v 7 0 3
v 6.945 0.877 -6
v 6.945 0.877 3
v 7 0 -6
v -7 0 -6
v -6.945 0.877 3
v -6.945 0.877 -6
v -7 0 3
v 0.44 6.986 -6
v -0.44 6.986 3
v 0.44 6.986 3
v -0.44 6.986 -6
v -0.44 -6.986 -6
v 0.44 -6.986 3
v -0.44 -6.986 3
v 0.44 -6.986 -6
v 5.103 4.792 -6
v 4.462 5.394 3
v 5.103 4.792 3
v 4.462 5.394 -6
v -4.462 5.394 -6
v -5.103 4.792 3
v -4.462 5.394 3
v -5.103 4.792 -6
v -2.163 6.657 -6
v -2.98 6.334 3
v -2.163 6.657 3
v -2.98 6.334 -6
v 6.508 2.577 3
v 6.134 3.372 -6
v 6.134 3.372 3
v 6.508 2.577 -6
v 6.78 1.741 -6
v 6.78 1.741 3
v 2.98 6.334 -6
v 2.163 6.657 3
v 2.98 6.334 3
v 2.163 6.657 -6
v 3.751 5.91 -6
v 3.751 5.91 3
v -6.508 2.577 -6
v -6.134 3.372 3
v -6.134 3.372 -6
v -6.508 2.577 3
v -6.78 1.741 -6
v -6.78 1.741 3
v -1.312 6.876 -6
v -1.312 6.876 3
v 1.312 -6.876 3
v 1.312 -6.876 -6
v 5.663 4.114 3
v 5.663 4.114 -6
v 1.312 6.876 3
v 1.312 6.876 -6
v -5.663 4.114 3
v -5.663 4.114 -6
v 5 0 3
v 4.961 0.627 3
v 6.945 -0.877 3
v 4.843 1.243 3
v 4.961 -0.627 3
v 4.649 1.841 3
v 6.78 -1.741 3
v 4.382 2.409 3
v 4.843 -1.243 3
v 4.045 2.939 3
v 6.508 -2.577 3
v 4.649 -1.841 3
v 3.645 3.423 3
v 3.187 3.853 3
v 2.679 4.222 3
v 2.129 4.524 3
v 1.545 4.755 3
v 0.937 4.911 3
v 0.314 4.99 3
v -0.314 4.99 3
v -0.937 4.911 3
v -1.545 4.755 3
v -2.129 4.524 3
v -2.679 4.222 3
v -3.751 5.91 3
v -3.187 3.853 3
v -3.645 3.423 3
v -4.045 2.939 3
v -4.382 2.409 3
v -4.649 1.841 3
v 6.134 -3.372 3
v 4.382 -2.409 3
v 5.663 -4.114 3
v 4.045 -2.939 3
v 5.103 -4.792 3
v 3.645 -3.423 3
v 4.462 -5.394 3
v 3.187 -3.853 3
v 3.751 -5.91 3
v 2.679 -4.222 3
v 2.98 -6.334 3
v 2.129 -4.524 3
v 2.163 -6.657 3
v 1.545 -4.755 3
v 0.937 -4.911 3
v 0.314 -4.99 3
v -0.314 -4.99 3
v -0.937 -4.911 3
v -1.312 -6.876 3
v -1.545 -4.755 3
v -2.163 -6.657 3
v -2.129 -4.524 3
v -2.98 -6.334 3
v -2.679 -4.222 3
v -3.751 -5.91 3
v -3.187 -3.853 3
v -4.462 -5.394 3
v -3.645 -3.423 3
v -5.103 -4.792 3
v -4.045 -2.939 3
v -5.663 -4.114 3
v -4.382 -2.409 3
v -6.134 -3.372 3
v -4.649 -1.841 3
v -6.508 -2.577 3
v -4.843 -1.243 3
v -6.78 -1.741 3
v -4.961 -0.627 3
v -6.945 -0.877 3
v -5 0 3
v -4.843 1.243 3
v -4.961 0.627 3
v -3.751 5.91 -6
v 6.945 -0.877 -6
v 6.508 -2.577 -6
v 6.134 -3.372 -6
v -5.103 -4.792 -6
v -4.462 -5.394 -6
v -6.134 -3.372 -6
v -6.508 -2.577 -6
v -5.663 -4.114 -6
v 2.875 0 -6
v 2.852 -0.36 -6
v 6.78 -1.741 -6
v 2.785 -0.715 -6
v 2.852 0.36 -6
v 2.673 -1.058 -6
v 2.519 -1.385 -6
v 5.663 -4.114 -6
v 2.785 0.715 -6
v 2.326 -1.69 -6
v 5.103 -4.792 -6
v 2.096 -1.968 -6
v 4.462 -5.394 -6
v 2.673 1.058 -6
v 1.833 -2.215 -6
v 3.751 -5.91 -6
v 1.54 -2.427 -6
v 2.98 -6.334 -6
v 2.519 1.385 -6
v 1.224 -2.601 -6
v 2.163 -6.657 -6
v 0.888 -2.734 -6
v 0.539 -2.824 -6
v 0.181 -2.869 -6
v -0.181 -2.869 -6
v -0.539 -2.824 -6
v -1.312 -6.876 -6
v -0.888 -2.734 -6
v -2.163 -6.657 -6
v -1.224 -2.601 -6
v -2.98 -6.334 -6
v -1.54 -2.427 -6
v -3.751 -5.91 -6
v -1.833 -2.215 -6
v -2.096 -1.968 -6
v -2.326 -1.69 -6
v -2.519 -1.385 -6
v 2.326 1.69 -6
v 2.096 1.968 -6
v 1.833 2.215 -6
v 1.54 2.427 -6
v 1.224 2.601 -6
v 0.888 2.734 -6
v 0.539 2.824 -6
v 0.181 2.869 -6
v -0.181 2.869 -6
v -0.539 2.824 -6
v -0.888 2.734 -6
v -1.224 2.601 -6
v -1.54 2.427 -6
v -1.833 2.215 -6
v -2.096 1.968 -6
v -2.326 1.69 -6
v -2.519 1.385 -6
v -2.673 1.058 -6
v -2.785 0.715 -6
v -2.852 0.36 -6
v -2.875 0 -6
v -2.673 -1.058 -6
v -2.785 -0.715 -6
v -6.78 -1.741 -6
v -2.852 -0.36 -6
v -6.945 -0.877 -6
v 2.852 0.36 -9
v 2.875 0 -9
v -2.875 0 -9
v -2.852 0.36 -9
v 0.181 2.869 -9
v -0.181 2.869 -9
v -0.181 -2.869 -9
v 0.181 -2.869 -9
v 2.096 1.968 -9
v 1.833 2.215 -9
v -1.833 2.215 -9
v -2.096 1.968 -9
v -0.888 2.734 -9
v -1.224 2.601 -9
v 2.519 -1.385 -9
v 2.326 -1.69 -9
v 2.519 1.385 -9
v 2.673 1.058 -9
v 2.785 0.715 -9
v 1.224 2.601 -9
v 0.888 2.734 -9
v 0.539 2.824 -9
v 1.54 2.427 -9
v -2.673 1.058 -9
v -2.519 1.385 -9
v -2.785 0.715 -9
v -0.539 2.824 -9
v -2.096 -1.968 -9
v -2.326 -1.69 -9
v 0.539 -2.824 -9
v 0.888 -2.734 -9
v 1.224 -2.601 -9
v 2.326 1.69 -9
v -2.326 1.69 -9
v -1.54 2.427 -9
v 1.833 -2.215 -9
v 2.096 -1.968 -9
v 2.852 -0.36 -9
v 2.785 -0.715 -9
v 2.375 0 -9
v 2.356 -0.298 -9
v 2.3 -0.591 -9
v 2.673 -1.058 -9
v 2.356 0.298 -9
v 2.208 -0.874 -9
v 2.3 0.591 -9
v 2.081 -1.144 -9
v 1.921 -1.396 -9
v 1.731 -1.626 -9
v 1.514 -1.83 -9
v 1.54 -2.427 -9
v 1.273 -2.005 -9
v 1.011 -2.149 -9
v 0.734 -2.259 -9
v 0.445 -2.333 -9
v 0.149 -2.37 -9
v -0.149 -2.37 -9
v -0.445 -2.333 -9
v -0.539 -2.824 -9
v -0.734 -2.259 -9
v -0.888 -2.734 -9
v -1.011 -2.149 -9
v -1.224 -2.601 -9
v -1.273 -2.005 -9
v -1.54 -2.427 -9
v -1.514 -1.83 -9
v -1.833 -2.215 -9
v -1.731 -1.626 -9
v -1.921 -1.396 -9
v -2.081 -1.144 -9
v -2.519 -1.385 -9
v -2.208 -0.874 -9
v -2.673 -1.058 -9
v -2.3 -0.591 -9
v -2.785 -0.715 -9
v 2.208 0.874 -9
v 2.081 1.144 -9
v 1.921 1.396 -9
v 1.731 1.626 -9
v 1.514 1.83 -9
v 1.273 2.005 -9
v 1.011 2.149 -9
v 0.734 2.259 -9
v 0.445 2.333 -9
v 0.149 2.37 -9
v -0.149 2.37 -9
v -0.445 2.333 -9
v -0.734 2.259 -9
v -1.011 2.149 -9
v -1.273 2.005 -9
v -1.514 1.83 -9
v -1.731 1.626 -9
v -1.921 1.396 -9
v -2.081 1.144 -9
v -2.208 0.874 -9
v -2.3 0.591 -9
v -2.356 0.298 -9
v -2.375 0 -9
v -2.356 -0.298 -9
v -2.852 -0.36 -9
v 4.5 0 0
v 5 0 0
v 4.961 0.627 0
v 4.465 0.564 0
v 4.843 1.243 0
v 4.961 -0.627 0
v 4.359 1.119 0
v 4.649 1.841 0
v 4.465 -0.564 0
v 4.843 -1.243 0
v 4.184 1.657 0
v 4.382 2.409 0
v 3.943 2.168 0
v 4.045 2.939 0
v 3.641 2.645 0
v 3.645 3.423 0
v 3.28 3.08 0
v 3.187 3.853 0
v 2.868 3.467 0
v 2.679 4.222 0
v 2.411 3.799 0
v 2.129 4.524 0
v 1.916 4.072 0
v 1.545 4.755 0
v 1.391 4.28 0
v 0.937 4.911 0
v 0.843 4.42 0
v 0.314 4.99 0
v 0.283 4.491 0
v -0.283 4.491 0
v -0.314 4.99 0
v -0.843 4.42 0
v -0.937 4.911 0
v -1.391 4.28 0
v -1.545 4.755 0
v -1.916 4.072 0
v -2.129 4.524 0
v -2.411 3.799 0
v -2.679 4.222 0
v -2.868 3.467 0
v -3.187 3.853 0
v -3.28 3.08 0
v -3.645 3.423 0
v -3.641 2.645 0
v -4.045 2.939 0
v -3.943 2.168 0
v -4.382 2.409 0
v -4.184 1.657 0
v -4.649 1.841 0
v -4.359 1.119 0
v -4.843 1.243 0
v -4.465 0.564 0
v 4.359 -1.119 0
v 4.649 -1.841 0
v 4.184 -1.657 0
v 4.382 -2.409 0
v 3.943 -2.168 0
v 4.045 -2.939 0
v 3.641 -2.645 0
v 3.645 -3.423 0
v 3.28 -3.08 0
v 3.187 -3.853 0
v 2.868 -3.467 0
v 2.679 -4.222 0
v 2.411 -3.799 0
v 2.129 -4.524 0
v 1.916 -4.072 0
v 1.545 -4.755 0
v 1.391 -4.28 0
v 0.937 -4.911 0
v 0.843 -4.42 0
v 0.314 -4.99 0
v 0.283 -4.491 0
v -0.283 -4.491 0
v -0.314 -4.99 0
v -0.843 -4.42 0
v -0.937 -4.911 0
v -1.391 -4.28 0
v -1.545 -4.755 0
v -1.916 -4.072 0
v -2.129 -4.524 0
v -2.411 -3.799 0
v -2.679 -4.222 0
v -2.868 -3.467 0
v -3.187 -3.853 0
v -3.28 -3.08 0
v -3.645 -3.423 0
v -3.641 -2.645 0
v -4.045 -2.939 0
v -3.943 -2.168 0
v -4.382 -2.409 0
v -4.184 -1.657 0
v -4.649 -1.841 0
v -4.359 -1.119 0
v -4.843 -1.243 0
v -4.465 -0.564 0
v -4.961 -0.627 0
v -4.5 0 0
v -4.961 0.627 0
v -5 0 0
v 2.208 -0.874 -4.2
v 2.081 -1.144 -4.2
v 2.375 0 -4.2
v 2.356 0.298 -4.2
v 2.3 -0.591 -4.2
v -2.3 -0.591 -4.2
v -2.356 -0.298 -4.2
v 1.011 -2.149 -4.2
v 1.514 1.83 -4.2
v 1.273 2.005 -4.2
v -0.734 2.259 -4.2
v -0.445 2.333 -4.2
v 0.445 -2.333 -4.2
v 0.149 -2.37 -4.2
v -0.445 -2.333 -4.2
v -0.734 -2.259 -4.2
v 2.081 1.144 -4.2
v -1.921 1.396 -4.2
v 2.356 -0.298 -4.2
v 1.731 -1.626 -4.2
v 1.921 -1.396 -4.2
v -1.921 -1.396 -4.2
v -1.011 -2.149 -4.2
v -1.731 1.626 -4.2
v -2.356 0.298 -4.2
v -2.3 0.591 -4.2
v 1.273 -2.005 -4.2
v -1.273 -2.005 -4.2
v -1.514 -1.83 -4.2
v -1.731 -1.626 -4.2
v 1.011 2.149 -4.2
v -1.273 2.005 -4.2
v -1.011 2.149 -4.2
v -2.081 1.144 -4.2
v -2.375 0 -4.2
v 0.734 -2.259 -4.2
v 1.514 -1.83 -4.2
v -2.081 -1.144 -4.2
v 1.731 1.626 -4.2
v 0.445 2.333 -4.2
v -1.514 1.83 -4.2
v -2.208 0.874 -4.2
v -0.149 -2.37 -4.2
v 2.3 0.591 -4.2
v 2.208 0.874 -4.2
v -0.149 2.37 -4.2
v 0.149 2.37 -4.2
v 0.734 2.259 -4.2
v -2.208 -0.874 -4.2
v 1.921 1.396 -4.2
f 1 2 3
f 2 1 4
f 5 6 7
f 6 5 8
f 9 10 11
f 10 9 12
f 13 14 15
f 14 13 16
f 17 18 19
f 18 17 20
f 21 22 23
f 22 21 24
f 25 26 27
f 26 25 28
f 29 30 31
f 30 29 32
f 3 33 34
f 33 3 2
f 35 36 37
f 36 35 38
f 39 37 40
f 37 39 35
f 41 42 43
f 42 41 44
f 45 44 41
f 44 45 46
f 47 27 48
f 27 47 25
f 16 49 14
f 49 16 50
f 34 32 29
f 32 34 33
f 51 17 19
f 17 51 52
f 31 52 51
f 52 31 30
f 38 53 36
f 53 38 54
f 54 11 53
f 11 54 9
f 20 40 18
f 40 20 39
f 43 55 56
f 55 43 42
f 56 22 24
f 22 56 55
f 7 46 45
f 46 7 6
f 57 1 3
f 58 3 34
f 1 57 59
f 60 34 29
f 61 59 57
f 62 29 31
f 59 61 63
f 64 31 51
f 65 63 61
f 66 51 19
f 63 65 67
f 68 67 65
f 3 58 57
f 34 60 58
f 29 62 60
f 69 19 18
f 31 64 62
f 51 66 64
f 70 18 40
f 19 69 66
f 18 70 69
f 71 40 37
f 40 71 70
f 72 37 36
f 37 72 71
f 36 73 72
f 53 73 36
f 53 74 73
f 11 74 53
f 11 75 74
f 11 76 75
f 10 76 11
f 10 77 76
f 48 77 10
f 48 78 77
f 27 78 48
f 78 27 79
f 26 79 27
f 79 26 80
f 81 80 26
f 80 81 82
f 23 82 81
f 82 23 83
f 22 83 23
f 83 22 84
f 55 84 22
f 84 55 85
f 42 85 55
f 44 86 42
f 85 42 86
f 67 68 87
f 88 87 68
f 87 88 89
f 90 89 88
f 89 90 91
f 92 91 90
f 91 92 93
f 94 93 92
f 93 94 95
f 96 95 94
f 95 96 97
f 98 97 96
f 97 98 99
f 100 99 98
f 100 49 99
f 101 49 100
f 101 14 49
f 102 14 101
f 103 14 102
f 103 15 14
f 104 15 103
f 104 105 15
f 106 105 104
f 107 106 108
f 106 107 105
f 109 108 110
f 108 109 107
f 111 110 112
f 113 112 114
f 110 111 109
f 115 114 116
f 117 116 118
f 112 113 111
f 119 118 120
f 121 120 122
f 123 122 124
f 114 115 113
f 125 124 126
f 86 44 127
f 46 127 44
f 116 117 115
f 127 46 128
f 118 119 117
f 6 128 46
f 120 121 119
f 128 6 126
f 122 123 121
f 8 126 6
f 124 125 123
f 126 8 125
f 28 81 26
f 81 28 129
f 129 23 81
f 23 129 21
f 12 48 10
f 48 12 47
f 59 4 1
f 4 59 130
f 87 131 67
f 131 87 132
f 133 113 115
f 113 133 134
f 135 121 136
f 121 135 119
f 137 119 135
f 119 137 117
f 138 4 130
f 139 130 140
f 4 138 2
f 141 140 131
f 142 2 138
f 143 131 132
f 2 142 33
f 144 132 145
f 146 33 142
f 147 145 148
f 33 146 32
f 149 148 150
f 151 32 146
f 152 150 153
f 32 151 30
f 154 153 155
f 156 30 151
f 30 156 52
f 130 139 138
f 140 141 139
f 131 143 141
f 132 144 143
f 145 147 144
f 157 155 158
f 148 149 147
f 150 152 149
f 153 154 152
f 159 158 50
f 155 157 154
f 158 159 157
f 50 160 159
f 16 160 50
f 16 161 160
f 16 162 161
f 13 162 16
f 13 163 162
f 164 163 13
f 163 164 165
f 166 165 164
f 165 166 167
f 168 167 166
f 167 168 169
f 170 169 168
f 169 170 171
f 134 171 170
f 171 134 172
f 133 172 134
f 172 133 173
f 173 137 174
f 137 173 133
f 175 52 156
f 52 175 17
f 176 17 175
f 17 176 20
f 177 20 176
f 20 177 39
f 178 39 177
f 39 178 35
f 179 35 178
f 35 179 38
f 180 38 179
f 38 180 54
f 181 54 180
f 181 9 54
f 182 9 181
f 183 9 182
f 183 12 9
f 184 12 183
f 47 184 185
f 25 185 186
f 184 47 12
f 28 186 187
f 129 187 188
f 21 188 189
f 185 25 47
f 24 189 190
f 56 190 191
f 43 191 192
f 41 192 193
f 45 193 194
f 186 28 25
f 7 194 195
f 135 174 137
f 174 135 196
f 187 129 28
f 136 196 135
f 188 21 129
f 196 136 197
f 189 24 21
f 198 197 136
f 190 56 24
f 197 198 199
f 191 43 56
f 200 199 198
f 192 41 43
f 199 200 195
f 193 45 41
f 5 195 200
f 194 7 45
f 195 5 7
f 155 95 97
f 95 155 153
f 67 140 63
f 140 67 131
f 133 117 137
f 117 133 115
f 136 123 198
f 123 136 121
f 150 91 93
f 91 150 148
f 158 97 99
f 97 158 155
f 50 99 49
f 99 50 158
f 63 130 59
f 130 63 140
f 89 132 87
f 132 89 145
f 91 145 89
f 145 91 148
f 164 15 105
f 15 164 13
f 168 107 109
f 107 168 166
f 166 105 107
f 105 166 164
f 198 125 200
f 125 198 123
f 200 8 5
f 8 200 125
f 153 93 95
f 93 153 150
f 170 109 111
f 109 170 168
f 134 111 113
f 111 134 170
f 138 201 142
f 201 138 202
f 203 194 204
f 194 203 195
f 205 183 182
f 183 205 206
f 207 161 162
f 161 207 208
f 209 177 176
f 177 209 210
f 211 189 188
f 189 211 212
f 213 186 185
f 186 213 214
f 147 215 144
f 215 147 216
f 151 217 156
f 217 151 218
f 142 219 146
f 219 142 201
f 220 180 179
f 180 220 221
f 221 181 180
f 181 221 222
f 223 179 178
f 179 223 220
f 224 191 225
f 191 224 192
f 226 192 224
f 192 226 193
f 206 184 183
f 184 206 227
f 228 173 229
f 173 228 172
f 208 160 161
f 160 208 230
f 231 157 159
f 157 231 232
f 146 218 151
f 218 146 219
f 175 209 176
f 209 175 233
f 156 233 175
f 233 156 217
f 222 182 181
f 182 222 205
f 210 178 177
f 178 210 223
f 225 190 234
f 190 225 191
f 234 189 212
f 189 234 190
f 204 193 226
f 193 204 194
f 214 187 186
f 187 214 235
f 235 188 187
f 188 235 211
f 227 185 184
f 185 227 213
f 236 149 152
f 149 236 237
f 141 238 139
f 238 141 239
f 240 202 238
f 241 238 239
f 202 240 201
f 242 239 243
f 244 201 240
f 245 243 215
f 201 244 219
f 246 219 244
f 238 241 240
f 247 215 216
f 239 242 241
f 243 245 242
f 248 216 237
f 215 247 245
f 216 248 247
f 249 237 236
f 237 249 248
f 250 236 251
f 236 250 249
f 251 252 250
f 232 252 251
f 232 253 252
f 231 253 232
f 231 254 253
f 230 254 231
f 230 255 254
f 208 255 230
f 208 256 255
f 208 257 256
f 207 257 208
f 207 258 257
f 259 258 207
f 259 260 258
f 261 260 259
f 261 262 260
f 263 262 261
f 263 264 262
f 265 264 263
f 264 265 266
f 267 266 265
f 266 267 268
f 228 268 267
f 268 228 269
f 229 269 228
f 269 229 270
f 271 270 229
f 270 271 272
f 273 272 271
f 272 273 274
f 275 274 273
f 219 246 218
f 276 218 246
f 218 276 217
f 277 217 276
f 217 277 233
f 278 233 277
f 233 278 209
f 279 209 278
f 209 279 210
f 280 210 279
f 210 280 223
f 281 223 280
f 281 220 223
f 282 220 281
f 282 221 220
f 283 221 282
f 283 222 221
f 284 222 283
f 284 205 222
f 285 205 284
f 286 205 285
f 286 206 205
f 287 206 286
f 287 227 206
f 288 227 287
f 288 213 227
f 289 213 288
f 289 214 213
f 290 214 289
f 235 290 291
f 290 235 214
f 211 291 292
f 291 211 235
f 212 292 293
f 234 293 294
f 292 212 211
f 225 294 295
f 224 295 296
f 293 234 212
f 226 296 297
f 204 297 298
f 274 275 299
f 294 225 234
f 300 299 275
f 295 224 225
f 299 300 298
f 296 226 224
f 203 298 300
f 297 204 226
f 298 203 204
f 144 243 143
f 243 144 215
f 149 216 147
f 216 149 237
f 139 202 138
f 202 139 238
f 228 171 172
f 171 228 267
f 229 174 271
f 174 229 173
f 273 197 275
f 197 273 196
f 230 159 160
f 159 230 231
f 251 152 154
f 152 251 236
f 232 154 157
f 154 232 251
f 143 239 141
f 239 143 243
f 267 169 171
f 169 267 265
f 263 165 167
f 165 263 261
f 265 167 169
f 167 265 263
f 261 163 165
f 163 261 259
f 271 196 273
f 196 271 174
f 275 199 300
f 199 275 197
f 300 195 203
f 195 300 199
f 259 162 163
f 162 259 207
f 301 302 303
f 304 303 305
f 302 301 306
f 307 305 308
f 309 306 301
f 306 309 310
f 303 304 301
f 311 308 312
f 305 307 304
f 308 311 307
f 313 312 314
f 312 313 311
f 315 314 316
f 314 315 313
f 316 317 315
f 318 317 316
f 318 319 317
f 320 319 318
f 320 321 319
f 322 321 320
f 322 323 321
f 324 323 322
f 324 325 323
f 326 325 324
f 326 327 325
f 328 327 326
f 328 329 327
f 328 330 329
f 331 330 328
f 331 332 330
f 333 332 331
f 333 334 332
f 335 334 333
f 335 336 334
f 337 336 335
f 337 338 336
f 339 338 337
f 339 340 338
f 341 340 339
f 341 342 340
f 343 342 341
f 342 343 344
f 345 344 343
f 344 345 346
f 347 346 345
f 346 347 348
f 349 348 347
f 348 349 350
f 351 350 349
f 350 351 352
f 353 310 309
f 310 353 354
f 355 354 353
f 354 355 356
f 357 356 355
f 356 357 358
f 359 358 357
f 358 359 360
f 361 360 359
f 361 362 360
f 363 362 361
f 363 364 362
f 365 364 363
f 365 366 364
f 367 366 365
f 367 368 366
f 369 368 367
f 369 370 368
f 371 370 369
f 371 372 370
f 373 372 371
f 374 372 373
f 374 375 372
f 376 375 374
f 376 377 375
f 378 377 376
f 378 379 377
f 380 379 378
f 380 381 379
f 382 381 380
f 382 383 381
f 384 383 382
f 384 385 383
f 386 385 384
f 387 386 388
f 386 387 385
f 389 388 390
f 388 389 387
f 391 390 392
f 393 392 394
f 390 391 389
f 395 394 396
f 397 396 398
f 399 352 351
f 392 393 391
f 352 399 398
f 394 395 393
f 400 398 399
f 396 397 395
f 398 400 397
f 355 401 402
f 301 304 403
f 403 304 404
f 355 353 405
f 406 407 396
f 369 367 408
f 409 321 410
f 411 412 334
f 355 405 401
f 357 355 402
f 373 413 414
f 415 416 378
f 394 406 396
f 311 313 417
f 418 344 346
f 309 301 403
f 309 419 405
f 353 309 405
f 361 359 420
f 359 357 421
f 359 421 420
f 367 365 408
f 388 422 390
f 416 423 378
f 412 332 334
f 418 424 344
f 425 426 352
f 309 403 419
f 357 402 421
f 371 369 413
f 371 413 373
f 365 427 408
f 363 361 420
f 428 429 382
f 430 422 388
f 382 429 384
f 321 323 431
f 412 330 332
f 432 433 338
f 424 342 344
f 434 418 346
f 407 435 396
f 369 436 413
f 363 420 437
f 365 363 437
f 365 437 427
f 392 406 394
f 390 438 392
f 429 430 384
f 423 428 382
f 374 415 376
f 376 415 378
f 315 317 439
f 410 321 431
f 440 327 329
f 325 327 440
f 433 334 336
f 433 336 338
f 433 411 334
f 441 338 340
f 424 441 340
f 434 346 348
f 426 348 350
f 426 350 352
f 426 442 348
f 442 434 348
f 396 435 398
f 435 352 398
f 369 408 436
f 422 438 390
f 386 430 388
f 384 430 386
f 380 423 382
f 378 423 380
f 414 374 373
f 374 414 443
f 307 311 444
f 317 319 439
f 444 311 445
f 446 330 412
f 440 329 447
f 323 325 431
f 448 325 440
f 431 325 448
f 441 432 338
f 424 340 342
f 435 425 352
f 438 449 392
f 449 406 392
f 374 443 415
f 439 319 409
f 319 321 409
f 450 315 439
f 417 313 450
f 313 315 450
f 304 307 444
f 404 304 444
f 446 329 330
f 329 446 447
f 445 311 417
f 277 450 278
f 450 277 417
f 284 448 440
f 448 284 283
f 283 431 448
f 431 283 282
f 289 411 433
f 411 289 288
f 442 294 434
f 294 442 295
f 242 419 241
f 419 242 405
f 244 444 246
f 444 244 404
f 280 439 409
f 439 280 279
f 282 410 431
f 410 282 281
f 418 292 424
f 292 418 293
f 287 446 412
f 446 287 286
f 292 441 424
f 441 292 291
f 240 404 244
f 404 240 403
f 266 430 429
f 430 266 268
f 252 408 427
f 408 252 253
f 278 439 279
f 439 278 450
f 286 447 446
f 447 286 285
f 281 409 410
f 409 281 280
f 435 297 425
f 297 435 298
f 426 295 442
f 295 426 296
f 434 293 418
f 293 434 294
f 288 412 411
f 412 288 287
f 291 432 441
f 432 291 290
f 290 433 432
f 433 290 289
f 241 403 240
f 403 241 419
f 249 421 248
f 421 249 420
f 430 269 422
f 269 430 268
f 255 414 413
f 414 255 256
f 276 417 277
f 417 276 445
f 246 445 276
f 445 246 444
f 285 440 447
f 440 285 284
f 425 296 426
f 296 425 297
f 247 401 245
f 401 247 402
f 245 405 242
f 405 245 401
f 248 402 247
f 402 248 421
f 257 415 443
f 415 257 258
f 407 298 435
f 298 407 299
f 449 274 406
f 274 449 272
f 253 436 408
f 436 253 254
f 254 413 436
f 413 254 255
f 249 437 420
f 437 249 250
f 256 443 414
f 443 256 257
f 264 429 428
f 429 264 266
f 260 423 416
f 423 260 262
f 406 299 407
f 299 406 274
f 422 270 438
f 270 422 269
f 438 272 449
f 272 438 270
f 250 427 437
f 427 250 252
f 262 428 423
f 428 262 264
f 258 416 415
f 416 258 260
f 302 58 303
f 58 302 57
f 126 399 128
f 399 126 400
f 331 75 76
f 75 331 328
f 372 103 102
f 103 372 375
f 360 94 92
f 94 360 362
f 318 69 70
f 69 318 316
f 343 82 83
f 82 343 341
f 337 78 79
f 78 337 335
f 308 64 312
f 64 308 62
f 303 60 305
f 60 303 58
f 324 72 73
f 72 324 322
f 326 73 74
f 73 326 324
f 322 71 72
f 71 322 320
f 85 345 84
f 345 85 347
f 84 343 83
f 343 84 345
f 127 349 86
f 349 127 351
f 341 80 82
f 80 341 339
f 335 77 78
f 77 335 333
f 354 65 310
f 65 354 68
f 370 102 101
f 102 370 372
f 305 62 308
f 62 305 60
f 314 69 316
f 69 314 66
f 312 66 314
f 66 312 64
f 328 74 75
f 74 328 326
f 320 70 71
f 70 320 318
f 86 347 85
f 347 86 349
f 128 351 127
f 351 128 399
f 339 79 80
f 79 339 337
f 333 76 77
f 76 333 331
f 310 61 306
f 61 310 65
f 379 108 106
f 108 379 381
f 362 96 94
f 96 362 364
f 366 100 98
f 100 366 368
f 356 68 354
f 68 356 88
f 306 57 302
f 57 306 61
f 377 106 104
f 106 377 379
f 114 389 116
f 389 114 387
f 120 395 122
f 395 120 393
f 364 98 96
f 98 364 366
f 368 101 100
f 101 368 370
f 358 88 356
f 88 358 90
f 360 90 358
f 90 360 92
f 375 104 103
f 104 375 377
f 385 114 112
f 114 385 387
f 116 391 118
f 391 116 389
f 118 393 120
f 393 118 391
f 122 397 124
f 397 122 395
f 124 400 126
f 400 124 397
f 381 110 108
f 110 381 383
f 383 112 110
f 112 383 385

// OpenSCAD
$fn = 50;


difference() {
	union() {
		translate(v = [0, 0, -6.0000000000]) {
			cylinder(h = 9, r = 7.0000000000);
		}
		#translate(v = [0, 0, -9.0000000000]) {
			cylinder(h = 9, r = 2.8750000000);
		}
	}
	union() {
		translate(v = [0, 0, 0]) {
			rotate(a = [0, 0, 0]) {
				difference() {
					union() {
						translate(v = [0, 0, -9.0000000000]) {
							cylinder(h = 9, r = 2.2500000000);
						}
						translate(v = [0, 0, -4.2000000000]) {
							cylinder(h = 4.2000000000, r1 = 2.3750000000, r2 = 4.5000000000);
						}
						translate(v = [0, 0, -9.0000000000]) {
							cylinder(h = 9, r = 2.3750000000);
						}
						translate(v = [0, 0, -9.0000000000]) {
							cylinder(h = 9, r = 2.2500000000);
						}
					}
					union();
				}
			}
		}
		#cylinder(h = 3, r = 5.0000000000);
	}
}
